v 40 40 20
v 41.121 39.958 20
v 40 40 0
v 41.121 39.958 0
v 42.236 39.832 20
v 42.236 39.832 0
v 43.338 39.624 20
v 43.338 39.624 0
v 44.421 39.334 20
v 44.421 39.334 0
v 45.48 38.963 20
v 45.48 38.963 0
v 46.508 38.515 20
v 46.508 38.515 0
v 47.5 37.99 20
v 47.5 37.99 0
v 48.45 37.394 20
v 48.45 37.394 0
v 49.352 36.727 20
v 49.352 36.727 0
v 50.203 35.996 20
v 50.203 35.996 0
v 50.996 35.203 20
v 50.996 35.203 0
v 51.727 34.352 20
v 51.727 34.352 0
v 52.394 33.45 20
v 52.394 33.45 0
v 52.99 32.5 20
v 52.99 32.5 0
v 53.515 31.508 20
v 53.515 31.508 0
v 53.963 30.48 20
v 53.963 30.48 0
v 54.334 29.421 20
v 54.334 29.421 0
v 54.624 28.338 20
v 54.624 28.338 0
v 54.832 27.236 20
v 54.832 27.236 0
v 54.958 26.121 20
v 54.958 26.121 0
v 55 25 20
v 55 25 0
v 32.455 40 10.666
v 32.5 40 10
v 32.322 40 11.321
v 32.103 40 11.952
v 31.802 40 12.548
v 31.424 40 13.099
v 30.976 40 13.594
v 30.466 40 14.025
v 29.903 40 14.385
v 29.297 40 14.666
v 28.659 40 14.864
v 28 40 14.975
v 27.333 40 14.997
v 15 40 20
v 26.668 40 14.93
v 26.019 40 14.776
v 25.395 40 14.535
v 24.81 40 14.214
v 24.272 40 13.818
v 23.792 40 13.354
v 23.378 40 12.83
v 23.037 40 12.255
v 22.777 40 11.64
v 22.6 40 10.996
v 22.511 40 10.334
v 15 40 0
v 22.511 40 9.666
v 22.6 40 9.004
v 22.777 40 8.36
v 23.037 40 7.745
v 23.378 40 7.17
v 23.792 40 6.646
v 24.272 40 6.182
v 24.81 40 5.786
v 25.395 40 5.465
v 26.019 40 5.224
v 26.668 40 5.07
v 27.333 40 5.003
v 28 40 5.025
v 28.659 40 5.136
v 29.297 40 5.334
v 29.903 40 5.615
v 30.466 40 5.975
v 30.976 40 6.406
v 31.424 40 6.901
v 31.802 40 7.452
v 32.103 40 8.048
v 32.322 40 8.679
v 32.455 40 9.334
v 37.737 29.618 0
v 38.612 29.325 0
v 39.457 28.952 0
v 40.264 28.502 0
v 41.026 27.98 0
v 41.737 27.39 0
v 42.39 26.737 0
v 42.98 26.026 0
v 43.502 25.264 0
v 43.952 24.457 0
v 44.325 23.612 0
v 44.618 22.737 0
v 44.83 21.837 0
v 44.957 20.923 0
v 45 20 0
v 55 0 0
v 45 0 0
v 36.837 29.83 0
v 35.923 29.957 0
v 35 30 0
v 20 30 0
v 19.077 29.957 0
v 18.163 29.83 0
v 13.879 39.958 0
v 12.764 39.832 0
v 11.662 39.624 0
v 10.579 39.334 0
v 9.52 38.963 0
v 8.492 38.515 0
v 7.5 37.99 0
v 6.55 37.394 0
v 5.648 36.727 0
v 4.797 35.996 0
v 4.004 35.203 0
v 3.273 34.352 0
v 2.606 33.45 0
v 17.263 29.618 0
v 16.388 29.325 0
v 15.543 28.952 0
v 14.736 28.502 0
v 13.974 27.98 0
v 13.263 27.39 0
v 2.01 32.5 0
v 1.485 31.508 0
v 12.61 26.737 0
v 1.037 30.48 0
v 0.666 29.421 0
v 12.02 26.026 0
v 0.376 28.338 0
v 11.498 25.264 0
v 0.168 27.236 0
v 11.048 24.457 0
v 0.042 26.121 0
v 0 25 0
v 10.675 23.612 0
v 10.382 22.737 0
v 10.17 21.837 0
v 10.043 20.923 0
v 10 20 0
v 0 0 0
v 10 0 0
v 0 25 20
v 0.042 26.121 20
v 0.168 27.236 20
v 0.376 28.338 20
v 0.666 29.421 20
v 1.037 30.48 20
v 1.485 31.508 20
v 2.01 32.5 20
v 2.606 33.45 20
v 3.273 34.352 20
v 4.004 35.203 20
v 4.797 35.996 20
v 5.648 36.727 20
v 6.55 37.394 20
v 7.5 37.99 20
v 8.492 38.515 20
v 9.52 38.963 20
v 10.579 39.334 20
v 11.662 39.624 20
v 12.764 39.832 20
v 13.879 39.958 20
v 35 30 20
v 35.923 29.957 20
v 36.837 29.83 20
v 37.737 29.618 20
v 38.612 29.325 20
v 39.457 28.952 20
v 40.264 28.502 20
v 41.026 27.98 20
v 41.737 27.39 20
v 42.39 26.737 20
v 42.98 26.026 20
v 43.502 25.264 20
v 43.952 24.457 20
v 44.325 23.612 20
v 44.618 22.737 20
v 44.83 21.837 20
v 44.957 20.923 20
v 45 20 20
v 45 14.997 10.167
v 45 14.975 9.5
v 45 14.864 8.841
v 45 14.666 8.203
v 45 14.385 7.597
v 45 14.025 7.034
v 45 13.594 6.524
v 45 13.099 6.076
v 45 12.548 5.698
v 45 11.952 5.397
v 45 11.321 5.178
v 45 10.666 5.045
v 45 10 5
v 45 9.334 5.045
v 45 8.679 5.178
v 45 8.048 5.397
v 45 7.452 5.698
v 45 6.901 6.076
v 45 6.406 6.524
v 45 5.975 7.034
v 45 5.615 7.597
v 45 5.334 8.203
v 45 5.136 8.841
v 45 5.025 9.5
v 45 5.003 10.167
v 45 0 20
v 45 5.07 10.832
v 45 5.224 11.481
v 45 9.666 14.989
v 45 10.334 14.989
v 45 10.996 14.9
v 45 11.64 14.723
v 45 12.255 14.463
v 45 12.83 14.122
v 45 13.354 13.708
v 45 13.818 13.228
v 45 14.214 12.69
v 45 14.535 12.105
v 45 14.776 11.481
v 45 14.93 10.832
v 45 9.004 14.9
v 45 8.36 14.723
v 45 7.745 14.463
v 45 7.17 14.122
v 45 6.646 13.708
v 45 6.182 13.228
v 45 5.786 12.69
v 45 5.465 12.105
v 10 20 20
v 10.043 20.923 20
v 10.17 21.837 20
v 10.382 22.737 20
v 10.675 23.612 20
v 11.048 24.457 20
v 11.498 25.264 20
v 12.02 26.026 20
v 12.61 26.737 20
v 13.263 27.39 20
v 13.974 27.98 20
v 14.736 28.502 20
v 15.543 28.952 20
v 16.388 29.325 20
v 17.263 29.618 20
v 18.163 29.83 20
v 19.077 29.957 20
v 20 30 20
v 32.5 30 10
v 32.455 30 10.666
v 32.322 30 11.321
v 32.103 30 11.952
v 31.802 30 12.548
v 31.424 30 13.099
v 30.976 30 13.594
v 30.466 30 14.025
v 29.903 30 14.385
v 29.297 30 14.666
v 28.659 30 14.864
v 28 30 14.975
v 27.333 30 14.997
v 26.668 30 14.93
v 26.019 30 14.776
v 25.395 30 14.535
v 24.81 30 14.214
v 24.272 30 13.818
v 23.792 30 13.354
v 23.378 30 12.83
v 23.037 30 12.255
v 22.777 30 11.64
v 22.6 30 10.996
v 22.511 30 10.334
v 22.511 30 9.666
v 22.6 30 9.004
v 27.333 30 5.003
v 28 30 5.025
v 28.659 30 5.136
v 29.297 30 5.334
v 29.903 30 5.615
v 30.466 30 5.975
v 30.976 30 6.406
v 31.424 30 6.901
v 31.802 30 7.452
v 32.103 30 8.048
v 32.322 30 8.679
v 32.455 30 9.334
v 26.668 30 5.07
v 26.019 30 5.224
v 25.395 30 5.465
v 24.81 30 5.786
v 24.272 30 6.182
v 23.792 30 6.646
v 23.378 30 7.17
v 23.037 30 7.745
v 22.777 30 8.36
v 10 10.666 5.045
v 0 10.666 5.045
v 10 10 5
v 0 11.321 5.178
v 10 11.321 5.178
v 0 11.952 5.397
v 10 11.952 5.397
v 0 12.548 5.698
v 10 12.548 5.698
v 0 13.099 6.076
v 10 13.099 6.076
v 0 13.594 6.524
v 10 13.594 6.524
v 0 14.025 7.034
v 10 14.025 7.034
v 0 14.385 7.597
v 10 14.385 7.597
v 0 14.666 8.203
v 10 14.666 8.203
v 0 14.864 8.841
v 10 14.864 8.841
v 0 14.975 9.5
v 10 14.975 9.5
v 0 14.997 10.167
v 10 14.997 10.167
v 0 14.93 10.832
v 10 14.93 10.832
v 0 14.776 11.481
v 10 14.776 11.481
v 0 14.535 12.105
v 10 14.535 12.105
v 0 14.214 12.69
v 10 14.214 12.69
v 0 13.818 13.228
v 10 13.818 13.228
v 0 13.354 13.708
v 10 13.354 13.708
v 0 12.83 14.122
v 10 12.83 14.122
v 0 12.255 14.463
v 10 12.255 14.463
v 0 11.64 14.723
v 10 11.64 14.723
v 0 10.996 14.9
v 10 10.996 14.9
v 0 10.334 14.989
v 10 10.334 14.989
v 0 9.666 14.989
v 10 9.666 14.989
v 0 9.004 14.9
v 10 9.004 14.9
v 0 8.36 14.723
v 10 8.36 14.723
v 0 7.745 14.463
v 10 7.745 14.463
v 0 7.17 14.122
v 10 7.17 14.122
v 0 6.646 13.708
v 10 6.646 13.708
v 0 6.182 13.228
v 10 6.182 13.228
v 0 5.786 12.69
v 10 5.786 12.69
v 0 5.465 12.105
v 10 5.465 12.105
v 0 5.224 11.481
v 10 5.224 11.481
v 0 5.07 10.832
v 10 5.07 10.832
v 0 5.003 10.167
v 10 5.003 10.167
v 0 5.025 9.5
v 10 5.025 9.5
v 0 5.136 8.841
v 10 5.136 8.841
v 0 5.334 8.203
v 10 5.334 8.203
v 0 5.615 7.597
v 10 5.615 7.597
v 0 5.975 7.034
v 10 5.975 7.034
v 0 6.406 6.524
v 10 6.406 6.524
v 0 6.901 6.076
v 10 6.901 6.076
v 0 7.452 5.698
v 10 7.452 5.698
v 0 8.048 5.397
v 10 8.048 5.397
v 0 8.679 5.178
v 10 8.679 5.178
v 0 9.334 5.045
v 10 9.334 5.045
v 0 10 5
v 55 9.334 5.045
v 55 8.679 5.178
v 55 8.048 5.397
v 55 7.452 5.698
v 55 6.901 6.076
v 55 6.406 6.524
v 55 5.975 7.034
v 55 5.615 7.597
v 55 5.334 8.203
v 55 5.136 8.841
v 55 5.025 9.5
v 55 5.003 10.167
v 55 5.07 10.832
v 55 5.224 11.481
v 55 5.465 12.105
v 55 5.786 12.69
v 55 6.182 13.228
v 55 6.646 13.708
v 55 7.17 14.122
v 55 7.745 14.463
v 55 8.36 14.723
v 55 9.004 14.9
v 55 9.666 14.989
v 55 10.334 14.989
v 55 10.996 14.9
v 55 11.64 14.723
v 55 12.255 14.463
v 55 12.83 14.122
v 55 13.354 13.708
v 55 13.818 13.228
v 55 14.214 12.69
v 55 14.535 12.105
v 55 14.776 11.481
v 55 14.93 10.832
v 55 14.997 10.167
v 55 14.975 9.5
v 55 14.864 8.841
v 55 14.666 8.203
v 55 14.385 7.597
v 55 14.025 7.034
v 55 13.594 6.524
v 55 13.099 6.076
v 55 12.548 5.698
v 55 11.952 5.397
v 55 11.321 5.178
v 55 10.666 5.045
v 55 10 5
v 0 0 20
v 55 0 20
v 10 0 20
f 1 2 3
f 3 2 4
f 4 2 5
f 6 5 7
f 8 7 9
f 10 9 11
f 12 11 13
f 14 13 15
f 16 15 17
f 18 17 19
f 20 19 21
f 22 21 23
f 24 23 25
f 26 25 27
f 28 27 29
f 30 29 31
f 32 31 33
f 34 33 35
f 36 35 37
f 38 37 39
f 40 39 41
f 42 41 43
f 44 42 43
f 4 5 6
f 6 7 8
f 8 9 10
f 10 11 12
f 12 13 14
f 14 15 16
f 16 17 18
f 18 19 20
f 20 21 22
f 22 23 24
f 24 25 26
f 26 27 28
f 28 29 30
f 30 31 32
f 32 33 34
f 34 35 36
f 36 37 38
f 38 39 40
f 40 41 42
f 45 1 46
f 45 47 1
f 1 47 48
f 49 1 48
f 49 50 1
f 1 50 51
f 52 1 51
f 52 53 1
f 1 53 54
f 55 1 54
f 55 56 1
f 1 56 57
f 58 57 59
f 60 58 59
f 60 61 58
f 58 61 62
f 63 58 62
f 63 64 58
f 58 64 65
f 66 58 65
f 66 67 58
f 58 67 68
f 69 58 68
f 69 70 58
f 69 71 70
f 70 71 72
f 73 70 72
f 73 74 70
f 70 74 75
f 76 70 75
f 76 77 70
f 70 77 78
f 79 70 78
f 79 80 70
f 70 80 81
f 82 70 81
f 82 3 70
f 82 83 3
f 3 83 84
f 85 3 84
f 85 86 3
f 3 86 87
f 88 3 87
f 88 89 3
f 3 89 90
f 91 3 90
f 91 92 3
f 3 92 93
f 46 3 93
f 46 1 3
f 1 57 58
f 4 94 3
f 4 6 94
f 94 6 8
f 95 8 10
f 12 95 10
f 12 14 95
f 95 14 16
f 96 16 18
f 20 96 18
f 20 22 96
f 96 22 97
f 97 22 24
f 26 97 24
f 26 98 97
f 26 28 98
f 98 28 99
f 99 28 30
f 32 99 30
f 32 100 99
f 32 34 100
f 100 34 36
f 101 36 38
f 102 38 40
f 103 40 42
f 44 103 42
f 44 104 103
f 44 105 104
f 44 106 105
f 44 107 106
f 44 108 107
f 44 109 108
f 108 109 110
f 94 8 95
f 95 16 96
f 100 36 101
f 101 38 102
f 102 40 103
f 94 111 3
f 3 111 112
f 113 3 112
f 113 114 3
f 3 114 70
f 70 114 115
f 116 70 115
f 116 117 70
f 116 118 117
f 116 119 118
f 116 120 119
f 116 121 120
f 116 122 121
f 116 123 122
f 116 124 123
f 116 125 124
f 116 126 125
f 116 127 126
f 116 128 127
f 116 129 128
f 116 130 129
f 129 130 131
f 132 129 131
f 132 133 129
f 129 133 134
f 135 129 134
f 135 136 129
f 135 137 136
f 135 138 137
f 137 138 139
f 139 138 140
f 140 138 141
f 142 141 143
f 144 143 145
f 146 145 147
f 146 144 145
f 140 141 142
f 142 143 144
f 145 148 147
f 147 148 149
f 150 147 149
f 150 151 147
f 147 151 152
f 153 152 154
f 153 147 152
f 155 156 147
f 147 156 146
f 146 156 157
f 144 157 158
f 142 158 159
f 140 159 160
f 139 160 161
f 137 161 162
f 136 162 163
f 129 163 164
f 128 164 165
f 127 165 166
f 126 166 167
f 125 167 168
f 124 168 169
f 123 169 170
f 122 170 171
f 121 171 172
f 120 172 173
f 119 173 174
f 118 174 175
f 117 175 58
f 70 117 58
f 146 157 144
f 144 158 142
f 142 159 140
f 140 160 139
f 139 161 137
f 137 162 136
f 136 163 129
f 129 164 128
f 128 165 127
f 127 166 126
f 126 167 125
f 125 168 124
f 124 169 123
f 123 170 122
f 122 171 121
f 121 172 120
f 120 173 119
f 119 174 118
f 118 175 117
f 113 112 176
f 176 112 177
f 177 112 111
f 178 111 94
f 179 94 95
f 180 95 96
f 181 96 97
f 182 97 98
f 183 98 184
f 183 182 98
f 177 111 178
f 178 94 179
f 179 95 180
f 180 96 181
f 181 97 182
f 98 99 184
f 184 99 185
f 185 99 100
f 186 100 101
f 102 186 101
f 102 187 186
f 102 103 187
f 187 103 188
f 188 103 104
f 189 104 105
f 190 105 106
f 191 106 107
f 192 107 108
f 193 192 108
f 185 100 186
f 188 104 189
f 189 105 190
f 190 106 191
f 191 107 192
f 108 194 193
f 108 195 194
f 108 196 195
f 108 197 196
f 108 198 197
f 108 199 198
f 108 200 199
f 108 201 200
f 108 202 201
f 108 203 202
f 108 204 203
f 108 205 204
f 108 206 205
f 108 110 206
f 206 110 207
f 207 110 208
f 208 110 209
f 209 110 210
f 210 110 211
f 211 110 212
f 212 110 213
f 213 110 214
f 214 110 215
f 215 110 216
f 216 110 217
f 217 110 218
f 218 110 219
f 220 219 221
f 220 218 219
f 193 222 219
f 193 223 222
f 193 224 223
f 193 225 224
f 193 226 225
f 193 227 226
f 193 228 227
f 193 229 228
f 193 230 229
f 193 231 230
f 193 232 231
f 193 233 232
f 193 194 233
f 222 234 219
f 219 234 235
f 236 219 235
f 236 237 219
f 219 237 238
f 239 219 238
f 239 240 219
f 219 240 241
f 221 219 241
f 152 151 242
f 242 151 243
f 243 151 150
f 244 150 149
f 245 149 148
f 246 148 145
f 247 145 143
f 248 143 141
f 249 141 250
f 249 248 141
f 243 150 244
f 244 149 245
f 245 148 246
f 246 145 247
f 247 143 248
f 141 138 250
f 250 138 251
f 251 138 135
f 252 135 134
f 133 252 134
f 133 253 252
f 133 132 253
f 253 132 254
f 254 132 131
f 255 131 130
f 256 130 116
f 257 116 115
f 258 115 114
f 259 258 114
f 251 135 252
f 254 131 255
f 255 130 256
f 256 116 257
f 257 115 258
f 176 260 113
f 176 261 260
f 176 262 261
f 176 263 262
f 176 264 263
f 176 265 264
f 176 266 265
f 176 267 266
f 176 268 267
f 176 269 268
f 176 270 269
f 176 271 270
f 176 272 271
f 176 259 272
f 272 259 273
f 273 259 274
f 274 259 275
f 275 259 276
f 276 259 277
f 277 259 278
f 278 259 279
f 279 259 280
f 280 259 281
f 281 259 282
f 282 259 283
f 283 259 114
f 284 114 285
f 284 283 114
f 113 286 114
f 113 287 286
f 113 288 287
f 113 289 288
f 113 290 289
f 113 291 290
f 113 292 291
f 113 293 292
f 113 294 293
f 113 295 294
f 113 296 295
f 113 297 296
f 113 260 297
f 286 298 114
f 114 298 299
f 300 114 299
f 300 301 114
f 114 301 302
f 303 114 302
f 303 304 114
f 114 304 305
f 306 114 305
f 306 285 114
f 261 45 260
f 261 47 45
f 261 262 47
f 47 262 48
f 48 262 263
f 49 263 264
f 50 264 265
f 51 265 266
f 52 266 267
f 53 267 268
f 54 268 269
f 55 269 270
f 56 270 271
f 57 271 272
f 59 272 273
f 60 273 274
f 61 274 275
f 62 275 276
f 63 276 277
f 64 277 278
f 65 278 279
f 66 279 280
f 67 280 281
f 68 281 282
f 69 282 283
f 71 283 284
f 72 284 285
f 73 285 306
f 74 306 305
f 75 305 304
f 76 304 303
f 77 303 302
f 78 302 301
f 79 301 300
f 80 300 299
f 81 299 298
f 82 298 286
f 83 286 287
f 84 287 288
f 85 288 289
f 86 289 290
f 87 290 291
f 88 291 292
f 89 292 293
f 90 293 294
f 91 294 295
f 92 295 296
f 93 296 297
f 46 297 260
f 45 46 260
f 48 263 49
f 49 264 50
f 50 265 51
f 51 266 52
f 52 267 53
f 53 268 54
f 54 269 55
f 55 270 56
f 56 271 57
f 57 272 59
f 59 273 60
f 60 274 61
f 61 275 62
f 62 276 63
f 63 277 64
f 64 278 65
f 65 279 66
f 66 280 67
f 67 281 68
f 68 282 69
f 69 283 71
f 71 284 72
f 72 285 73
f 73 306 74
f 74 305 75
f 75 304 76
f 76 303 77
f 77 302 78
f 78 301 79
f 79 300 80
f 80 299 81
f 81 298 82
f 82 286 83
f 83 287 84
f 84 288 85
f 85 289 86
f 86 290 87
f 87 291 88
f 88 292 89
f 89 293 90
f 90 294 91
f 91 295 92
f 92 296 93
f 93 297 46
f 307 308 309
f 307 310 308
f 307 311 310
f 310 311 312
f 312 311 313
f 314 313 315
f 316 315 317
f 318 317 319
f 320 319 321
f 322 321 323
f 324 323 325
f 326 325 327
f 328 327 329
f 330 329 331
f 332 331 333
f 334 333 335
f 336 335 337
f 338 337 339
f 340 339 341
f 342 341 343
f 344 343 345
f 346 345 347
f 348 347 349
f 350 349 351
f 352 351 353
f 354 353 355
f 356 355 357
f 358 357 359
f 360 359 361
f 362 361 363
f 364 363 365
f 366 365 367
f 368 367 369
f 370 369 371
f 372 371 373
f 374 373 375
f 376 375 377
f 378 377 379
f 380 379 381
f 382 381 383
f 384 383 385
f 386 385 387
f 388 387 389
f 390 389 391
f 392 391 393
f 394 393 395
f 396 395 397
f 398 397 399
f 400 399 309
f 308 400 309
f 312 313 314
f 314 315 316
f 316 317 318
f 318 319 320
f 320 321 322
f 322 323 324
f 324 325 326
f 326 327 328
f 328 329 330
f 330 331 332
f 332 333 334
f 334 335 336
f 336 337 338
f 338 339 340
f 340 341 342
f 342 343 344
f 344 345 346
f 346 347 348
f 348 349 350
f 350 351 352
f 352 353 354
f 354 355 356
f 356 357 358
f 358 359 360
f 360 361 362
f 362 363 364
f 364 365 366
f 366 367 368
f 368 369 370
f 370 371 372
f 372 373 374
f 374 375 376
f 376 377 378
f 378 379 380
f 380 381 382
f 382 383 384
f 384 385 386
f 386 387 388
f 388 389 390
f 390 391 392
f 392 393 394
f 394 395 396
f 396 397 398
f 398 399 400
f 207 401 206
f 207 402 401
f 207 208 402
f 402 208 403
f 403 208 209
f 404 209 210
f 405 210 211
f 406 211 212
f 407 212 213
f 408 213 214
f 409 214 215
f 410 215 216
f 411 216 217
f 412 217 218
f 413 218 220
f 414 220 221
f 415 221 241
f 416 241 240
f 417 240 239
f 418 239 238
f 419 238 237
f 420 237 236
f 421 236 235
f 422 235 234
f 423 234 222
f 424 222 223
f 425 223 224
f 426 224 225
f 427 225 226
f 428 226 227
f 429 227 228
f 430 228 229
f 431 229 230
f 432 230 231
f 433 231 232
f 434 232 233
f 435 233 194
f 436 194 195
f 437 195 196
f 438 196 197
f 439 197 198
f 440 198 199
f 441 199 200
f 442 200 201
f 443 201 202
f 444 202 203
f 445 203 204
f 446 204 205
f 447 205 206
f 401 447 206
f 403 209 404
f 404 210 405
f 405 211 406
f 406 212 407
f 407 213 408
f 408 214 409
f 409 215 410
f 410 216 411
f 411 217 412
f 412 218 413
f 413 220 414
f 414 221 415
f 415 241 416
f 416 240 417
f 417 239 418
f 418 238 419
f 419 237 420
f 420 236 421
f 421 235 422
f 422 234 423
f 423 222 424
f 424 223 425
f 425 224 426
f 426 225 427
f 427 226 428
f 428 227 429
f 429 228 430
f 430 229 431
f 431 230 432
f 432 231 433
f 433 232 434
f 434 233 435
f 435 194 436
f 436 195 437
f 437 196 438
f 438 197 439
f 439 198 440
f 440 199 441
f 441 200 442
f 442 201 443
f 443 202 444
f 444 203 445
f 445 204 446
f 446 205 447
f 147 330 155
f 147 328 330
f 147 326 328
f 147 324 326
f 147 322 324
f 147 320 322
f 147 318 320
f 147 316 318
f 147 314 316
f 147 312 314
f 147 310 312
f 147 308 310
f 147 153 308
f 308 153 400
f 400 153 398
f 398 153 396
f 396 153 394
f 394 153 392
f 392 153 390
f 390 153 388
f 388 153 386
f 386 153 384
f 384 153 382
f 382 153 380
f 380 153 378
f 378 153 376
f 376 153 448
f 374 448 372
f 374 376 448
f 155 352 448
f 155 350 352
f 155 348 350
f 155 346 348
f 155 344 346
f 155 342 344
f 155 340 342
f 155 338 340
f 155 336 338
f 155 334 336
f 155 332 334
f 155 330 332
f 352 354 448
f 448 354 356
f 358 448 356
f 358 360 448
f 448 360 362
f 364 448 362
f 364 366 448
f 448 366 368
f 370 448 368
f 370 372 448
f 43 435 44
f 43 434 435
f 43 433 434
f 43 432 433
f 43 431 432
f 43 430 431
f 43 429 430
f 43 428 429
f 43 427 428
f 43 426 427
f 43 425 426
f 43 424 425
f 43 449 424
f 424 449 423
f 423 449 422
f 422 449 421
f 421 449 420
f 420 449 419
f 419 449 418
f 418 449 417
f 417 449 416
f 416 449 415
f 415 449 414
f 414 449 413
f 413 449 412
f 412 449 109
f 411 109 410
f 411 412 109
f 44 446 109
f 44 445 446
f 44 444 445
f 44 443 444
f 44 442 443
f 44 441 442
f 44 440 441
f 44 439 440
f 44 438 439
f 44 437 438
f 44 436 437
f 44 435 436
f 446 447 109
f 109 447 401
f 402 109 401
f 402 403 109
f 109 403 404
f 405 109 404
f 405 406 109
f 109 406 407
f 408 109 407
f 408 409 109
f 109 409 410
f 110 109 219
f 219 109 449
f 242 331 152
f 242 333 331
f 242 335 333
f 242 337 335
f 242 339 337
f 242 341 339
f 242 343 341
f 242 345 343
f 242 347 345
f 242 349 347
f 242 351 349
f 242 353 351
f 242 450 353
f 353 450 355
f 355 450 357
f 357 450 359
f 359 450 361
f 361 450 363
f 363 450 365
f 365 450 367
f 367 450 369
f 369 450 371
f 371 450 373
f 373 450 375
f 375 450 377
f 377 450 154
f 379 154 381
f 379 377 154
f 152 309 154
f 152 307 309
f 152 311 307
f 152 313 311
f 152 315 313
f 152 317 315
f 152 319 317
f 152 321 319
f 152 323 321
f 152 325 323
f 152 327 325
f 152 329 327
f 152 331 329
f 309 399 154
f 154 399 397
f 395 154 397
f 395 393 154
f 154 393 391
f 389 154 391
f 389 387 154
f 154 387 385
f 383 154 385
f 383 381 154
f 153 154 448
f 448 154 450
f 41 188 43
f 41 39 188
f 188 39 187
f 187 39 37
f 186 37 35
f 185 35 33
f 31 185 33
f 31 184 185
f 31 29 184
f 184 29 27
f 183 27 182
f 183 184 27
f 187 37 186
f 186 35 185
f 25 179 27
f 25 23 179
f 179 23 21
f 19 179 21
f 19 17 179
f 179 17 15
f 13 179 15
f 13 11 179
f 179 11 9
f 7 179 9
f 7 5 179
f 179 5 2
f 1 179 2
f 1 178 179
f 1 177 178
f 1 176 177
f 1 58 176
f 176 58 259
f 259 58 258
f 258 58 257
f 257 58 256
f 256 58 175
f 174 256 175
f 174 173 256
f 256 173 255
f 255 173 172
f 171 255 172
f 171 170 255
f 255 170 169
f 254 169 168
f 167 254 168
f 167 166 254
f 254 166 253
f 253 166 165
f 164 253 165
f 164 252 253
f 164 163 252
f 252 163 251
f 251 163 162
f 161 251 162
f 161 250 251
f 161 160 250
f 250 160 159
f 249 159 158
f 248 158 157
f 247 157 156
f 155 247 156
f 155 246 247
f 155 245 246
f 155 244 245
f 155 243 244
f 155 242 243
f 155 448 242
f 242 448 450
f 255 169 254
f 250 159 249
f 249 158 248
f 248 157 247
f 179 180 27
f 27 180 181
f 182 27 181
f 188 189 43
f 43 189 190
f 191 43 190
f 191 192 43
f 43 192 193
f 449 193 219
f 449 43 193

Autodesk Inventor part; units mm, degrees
ref_plane "YZ Plane" through (0, 0, 0) normal (1, 0, 0) x (0, 1, 0)
ref_plane "XZ Plane" through (0, 0, 0) normal (0, 1, 0) x (-1, 0, 0)
ref_plane "XY Plane" through (0, 0, 0) normal (0, 0, 1) x (1, 0, 0)
sketch "Sketch1" plane through (0, 0, 0) normal (0, 0, 1) x (1, 0, 0)
  line L0 (0, 0) -> (10, 0)
  line L1 (10, 0) -> (10, 30)
  line L2 (10, 30) -> (45, 30)
  line L3 (45, 30) -> (45, 0)
  line L4 (45, 0) -> (55, 0)
  line L5 (55, 0) -> (55, 40)
  line L6 (55, 40) -> (0, 40)
  line L7 (0, 40) -> (0, 0)
  dimension "d0" = 10
  dimension "d1" = 35
  dimension "d2" = 10
  dimension "d3" = 40
  dimension "d4" = 10
extrude "Extrusion1" add sketch "Sketch1" along normal blind 20
sketch "Sketch2" plane through (55, 0, 0) normal (1, 0, 0) x (0, 0, -1)
  circle A0 centre (-10, 10) radius 5
  line L0 (0, 0) -> (0, 40) projected
  line L1 (0, 0) -> (0, 40) projected
  line L2 (0, 40) -> (-20, 40) projected
  line L3 (-20, 0) -> (-20, 40) projected
  line L4 (0, 0) -> (-20, 0) projected
  dimension "d7" = 10
  dimension "d8" = 10
  dimension "d9" = 20
  dimension "d10" = 10
extrude "Extrusion2" cut sketch "Sketch2" against normal through all contours A0
sketch "Sketch3" plane through (0, 40, 0) normal (0, 1, 0) x (1, 0, 0)
  line L0 (55, 0) -> (0, 0) projected
  line L1 (0, 0) -> (0, -20) projected
  line L2 (55, -20) -> (0, -20) projected
  line L3 (55, 0) -> (55, -20) projected
  circle A0 centre (27.5, -10) radius 5
  point P0 (0, 0)
  dimension "d13" = 55
  dimension "d14" = 10
  dimension "d15" = 27.5
  dimension "d16" = 20
  dimension "d17" = 10
extrude "Extrusion3" cut sketch "Sketch3" against normal up to next contours A0
fillet "Fillet2" radius 10 2 edges at (10, 30, 10) (45, 30, 10)
fillet "Fillet4" radius 15 2 edges at (0, 40, 10) (55, 40, 10)
equation "\"d8\" = 0.5 * d9"
equation "\"d15\" = 0.5 * d13"
equation "\"d17\" = 0.5 * d16"
properties part number "EE_base_connection" material "Acetal Resin, Black"
